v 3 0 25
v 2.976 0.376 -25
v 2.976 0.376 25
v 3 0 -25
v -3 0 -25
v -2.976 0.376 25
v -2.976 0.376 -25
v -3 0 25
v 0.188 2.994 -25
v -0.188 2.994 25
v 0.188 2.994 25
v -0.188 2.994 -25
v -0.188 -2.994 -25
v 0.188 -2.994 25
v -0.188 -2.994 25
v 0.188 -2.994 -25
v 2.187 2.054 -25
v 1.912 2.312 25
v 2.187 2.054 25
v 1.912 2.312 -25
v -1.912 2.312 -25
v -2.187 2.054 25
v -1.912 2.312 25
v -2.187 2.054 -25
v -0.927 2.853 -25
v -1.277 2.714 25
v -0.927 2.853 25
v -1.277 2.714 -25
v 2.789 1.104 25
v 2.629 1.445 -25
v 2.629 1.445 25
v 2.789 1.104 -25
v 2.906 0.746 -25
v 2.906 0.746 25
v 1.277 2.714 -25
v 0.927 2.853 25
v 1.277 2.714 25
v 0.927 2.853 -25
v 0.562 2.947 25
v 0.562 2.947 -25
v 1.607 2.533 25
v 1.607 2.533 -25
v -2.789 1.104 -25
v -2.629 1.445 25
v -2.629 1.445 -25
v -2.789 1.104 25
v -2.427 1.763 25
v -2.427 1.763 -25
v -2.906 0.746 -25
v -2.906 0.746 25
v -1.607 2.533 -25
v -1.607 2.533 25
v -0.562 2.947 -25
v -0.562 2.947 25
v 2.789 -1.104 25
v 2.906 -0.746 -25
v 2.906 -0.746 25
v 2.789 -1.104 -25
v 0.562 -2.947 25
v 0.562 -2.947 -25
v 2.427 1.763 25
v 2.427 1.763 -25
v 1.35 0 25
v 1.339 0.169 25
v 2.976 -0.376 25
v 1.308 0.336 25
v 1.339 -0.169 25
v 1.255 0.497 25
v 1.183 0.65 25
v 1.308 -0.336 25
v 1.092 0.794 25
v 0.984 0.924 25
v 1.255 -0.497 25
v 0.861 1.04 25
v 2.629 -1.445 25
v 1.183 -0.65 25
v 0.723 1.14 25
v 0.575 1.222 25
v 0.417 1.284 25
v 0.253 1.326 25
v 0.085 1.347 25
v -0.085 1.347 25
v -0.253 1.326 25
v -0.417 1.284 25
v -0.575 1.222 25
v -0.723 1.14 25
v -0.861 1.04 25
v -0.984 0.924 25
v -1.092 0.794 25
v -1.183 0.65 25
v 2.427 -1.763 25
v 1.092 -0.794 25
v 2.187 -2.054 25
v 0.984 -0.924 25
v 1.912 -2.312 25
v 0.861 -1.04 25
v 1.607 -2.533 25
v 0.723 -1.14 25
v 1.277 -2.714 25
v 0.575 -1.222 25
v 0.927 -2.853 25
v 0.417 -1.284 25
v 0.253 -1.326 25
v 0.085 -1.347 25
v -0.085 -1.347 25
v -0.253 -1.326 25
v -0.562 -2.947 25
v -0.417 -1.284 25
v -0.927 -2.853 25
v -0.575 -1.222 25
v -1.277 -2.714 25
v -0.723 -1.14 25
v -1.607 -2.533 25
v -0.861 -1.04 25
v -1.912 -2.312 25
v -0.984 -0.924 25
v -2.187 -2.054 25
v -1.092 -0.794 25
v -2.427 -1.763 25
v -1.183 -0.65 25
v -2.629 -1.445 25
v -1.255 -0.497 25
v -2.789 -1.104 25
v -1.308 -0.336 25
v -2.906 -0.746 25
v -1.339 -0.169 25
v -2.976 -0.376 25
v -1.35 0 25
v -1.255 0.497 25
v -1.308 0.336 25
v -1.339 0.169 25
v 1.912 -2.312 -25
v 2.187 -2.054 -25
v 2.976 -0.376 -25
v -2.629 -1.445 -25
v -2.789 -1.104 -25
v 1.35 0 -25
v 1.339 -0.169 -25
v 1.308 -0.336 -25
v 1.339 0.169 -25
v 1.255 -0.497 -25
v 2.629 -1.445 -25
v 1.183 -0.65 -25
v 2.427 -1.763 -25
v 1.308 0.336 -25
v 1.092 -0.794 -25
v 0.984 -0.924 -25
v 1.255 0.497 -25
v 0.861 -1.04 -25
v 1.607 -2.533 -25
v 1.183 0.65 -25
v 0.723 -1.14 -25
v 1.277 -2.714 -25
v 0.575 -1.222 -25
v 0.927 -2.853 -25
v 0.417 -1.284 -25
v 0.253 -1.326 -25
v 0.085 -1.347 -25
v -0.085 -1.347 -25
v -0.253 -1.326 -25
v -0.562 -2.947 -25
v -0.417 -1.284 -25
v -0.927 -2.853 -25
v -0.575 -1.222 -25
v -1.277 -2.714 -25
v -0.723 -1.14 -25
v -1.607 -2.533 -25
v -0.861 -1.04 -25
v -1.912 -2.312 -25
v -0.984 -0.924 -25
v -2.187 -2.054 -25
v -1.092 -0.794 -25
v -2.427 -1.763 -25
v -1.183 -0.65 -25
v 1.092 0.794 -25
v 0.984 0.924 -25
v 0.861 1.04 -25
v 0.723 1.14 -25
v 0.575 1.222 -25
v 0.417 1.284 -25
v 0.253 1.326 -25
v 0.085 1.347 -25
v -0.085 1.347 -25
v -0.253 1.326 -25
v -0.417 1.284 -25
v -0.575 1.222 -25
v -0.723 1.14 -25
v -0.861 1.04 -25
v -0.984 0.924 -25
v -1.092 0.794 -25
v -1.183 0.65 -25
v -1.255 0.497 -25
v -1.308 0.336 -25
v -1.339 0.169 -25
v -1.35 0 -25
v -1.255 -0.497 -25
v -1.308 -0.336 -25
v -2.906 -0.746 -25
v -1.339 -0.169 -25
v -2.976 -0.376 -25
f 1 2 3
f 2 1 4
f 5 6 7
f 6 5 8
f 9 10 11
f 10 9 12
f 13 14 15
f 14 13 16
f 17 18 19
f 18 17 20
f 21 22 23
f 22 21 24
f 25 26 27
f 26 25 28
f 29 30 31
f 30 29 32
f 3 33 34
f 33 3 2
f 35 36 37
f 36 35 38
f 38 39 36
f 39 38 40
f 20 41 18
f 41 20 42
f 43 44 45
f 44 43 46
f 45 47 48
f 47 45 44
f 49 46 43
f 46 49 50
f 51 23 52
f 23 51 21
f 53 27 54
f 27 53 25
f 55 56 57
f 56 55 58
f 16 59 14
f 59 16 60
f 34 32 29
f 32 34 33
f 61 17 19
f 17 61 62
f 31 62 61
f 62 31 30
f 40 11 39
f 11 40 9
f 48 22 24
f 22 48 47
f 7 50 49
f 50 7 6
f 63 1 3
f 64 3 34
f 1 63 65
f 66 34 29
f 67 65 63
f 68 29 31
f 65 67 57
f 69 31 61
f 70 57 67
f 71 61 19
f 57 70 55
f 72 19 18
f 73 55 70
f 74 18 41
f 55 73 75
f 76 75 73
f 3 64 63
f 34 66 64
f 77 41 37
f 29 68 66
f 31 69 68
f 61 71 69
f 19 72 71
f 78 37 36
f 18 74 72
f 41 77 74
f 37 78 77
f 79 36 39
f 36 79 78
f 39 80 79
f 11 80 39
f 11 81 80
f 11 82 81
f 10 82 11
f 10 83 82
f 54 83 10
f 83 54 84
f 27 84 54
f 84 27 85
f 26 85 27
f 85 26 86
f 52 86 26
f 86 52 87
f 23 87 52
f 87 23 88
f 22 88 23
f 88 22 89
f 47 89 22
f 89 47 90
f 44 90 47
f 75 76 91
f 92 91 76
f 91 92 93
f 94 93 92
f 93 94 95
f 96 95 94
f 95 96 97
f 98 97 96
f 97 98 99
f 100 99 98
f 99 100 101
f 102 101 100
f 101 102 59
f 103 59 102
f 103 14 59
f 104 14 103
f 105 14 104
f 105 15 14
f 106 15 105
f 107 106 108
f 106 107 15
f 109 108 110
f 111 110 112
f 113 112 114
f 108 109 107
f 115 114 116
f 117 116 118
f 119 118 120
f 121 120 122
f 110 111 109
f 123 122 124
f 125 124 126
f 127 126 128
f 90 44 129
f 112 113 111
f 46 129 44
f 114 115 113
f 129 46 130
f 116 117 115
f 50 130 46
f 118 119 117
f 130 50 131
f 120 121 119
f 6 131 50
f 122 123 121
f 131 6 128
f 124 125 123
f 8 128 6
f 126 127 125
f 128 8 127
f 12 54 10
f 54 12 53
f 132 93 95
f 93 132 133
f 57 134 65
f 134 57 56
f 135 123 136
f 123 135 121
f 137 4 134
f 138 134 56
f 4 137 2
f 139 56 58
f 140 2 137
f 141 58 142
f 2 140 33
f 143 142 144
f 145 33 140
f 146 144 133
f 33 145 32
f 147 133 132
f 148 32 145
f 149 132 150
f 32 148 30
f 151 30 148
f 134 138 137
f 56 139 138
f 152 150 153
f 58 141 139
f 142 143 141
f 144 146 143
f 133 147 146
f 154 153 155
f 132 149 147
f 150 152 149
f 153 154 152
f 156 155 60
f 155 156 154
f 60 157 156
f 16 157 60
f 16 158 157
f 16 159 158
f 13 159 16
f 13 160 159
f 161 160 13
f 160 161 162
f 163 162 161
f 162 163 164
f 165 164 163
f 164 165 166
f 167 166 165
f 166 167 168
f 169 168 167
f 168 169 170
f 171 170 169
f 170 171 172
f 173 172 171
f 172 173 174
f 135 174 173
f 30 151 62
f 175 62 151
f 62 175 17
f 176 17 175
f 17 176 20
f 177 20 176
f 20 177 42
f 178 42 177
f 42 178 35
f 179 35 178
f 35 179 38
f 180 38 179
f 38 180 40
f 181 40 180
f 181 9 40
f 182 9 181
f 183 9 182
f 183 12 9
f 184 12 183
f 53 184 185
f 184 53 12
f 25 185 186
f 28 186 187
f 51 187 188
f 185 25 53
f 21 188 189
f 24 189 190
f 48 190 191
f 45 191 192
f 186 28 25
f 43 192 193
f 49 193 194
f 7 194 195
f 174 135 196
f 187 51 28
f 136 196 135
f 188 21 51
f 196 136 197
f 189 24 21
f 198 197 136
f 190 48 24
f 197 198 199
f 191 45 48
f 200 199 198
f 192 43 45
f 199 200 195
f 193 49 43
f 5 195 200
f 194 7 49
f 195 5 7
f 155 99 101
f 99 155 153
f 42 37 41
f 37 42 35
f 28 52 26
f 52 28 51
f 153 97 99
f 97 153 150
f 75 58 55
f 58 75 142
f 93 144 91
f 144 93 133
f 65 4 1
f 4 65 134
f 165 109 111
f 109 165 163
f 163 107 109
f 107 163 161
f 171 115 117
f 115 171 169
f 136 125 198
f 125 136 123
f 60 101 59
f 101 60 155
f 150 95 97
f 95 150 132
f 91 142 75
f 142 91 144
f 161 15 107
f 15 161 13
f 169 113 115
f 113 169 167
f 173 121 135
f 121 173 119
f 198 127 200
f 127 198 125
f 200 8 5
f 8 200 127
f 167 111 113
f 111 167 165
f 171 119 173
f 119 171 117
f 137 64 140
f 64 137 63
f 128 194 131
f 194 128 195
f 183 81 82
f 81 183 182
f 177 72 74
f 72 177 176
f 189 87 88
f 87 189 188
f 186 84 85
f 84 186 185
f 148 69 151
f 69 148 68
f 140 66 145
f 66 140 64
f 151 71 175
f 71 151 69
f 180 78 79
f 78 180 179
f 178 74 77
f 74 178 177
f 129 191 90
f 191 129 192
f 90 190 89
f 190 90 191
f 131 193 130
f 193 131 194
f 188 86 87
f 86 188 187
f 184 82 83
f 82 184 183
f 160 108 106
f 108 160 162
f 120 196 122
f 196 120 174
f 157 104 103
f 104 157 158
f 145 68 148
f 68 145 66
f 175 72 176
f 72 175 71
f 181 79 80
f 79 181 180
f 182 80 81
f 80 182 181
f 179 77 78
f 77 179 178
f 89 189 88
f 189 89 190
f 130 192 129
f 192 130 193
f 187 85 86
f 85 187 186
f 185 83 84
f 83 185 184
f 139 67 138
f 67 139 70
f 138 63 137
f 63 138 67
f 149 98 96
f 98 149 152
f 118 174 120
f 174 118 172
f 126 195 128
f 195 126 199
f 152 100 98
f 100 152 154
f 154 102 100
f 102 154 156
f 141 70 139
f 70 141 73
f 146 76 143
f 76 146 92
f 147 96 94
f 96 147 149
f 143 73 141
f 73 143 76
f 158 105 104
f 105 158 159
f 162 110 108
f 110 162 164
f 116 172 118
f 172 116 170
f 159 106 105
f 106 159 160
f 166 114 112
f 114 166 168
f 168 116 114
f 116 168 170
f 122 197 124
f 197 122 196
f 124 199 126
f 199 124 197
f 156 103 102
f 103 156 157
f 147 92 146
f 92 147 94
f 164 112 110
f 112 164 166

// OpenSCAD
$fn = 50;


difference() {
	union() {
		translate(v = [0, 0, -25.0000000000]) {
			cylinder(h = 50, r = 3.0000000000);
		}
	}
	union() {
		translate(v = [0, 0, -100.0000000000]) {
			cylinder(h = 200, r = 1.3500000000);
		}
	}
}
